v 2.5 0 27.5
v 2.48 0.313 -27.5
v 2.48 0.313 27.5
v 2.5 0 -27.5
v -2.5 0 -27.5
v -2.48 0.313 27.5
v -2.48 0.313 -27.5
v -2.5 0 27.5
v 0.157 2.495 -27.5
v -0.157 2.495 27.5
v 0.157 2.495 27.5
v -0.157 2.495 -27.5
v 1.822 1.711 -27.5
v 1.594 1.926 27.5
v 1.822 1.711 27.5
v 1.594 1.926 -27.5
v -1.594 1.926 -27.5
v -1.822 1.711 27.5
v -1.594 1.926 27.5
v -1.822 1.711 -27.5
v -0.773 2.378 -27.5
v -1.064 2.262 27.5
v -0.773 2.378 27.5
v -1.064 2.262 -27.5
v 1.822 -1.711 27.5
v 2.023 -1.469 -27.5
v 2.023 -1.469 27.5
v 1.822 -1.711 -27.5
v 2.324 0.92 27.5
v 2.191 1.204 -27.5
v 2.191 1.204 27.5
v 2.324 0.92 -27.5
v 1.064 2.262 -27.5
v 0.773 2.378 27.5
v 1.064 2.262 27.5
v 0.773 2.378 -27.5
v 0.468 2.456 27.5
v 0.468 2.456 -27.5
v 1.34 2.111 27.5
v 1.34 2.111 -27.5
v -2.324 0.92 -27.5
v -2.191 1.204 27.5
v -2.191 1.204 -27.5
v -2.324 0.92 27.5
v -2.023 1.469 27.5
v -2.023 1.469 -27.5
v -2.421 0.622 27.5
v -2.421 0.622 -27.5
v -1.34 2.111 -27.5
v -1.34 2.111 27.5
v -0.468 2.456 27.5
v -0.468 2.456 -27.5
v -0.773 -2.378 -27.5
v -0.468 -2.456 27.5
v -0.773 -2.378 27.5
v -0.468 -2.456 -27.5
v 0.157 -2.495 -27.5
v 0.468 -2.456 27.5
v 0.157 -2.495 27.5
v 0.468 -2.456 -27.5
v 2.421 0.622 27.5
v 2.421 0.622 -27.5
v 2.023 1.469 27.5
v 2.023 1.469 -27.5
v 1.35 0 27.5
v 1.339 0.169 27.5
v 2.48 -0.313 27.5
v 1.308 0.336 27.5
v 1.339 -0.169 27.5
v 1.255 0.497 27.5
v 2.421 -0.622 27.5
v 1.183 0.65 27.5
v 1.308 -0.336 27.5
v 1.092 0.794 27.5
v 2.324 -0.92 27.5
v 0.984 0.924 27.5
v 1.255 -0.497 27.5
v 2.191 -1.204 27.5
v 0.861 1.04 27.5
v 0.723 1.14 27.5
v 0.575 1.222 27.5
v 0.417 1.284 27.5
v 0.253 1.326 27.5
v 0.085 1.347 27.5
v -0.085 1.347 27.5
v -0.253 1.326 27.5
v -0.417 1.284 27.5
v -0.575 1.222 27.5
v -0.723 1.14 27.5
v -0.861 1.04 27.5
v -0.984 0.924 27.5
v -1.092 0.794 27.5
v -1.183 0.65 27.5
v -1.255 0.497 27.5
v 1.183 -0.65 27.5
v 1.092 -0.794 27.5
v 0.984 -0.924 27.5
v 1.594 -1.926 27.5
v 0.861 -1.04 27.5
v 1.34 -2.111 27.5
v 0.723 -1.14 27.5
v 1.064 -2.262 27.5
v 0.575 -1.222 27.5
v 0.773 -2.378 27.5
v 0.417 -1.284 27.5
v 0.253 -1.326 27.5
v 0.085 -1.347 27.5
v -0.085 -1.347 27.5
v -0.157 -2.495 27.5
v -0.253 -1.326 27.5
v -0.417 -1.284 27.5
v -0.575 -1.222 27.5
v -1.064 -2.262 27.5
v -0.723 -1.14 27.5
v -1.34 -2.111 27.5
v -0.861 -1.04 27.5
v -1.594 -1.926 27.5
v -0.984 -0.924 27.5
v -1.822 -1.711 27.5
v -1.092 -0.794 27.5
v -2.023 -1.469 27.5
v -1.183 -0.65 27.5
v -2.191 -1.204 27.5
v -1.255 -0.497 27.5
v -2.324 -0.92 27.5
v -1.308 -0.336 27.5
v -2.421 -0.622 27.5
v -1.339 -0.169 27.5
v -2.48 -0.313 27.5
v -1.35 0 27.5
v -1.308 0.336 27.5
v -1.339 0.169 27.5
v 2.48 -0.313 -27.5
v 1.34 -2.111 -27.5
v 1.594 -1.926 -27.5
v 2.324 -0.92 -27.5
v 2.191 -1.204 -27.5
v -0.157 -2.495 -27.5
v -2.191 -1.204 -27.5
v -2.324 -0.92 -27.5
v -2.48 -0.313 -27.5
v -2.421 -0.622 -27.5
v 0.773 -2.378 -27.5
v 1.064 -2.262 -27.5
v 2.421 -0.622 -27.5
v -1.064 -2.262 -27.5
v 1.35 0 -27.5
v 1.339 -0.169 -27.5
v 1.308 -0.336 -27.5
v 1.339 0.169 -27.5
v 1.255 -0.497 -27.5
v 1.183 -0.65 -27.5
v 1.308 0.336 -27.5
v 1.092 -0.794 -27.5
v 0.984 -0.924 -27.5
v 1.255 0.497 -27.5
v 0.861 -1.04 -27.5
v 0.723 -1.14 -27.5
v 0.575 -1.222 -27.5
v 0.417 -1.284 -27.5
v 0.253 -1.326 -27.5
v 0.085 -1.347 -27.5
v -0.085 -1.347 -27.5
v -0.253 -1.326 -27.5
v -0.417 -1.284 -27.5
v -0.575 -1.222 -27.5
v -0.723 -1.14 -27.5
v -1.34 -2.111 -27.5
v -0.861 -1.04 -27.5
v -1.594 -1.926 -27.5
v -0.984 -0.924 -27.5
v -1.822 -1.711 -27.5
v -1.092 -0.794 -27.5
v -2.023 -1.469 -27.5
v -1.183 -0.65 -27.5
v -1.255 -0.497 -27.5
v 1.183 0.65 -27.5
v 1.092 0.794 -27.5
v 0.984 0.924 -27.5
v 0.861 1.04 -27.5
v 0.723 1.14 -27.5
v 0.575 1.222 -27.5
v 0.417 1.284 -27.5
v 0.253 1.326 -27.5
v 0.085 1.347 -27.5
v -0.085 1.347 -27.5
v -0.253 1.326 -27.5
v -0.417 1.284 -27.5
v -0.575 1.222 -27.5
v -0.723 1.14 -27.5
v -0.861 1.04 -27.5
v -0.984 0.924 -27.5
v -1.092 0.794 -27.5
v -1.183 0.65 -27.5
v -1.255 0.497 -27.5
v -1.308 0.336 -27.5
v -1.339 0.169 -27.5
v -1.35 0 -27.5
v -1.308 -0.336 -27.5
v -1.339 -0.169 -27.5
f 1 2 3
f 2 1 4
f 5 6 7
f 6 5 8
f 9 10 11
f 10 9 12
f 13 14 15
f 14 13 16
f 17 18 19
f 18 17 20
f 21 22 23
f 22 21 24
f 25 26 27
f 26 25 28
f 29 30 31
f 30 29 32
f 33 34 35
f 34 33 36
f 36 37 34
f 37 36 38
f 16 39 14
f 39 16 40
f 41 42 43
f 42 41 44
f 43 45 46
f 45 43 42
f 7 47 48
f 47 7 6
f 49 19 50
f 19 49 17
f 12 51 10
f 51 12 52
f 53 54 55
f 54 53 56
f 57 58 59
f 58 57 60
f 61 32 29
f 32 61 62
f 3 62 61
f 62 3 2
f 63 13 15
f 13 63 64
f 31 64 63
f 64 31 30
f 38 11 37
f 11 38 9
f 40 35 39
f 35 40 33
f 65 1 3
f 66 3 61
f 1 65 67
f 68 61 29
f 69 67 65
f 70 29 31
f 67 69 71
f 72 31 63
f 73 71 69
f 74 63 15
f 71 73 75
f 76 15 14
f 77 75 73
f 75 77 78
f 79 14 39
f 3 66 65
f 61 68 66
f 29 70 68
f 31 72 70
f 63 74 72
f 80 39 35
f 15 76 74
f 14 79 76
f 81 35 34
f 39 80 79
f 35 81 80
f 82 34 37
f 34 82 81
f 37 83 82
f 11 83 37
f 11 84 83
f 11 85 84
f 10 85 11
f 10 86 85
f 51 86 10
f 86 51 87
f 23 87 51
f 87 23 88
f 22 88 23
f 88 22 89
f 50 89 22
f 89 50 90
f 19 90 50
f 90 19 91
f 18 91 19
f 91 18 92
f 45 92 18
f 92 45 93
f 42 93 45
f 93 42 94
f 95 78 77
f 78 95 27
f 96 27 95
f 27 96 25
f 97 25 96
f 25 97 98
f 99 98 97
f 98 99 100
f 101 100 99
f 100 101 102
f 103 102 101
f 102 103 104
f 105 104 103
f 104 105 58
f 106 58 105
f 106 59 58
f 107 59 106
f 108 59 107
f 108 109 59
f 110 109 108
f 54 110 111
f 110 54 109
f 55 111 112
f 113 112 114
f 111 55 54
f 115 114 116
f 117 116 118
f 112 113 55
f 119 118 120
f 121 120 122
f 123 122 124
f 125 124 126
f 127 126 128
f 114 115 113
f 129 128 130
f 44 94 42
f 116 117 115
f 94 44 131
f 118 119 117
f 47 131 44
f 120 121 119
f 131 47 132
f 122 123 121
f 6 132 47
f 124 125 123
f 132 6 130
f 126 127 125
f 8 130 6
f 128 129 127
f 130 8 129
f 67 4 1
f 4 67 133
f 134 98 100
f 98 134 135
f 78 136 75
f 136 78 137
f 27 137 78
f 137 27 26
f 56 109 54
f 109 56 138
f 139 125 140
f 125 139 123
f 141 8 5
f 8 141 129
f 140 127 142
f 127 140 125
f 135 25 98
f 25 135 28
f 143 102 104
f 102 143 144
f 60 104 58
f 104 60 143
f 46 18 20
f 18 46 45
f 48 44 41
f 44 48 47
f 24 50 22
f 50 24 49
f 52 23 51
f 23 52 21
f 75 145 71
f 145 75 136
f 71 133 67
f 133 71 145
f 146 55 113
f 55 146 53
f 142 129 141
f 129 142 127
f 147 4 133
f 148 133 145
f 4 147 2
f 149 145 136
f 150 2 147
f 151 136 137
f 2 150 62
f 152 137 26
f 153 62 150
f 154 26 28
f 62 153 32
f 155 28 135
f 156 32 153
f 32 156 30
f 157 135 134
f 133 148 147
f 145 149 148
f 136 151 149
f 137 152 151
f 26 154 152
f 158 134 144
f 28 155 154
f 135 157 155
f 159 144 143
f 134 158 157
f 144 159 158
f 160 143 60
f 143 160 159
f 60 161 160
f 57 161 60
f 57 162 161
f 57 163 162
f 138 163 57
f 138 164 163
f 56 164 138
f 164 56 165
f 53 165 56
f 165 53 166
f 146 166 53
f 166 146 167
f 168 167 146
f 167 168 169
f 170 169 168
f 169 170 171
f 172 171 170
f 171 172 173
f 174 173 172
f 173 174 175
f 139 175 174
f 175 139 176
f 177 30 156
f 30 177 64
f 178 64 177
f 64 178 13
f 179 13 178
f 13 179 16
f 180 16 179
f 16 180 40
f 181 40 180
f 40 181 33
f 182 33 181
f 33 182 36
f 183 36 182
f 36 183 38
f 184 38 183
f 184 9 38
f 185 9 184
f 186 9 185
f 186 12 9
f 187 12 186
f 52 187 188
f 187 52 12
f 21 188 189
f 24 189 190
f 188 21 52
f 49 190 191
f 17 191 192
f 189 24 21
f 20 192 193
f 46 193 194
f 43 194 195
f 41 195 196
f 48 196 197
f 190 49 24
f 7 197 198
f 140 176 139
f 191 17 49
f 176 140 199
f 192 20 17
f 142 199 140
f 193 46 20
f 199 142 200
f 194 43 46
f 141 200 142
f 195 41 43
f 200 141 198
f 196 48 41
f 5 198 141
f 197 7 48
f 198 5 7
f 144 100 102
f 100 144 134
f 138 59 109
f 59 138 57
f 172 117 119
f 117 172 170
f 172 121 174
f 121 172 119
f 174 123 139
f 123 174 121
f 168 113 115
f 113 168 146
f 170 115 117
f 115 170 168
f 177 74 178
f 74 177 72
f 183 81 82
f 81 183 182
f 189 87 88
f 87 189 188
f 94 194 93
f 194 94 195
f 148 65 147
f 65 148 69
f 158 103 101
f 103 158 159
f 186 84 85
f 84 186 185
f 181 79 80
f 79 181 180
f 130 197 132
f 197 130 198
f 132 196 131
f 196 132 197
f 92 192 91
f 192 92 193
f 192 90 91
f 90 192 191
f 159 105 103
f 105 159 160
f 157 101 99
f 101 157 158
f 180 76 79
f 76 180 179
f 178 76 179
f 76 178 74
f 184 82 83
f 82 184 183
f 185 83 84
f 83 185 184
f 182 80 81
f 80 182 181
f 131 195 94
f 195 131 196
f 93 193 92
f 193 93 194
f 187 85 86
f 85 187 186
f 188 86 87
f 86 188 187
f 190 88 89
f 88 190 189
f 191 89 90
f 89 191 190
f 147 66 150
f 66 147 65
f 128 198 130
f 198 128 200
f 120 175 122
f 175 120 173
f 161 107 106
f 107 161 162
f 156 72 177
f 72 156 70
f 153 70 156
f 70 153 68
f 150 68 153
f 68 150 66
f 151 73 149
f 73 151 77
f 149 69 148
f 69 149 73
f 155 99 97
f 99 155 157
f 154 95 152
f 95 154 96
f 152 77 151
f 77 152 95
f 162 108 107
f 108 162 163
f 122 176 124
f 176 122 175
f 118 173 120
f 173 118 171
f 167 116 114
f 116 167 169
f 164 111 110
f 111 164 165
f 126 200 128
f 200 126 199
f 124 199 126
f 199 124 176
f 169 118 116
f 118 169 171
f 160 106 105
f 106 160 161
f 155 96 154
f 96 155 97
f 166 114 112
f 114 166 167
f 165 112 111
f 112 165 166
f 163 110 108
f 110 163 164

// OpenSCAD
$fn = 50;


difference() {
	union() {
		translate(v = [0, 0, -27.5000000000]) {
			cylinder(h = 55, r = 2.5000000000);
		}
	}
	union() {
		translate(v = [0, 0, -100.0000000000]) {
			cylinder(h = 200, r = 1.3500000000);
		}
	}
}
